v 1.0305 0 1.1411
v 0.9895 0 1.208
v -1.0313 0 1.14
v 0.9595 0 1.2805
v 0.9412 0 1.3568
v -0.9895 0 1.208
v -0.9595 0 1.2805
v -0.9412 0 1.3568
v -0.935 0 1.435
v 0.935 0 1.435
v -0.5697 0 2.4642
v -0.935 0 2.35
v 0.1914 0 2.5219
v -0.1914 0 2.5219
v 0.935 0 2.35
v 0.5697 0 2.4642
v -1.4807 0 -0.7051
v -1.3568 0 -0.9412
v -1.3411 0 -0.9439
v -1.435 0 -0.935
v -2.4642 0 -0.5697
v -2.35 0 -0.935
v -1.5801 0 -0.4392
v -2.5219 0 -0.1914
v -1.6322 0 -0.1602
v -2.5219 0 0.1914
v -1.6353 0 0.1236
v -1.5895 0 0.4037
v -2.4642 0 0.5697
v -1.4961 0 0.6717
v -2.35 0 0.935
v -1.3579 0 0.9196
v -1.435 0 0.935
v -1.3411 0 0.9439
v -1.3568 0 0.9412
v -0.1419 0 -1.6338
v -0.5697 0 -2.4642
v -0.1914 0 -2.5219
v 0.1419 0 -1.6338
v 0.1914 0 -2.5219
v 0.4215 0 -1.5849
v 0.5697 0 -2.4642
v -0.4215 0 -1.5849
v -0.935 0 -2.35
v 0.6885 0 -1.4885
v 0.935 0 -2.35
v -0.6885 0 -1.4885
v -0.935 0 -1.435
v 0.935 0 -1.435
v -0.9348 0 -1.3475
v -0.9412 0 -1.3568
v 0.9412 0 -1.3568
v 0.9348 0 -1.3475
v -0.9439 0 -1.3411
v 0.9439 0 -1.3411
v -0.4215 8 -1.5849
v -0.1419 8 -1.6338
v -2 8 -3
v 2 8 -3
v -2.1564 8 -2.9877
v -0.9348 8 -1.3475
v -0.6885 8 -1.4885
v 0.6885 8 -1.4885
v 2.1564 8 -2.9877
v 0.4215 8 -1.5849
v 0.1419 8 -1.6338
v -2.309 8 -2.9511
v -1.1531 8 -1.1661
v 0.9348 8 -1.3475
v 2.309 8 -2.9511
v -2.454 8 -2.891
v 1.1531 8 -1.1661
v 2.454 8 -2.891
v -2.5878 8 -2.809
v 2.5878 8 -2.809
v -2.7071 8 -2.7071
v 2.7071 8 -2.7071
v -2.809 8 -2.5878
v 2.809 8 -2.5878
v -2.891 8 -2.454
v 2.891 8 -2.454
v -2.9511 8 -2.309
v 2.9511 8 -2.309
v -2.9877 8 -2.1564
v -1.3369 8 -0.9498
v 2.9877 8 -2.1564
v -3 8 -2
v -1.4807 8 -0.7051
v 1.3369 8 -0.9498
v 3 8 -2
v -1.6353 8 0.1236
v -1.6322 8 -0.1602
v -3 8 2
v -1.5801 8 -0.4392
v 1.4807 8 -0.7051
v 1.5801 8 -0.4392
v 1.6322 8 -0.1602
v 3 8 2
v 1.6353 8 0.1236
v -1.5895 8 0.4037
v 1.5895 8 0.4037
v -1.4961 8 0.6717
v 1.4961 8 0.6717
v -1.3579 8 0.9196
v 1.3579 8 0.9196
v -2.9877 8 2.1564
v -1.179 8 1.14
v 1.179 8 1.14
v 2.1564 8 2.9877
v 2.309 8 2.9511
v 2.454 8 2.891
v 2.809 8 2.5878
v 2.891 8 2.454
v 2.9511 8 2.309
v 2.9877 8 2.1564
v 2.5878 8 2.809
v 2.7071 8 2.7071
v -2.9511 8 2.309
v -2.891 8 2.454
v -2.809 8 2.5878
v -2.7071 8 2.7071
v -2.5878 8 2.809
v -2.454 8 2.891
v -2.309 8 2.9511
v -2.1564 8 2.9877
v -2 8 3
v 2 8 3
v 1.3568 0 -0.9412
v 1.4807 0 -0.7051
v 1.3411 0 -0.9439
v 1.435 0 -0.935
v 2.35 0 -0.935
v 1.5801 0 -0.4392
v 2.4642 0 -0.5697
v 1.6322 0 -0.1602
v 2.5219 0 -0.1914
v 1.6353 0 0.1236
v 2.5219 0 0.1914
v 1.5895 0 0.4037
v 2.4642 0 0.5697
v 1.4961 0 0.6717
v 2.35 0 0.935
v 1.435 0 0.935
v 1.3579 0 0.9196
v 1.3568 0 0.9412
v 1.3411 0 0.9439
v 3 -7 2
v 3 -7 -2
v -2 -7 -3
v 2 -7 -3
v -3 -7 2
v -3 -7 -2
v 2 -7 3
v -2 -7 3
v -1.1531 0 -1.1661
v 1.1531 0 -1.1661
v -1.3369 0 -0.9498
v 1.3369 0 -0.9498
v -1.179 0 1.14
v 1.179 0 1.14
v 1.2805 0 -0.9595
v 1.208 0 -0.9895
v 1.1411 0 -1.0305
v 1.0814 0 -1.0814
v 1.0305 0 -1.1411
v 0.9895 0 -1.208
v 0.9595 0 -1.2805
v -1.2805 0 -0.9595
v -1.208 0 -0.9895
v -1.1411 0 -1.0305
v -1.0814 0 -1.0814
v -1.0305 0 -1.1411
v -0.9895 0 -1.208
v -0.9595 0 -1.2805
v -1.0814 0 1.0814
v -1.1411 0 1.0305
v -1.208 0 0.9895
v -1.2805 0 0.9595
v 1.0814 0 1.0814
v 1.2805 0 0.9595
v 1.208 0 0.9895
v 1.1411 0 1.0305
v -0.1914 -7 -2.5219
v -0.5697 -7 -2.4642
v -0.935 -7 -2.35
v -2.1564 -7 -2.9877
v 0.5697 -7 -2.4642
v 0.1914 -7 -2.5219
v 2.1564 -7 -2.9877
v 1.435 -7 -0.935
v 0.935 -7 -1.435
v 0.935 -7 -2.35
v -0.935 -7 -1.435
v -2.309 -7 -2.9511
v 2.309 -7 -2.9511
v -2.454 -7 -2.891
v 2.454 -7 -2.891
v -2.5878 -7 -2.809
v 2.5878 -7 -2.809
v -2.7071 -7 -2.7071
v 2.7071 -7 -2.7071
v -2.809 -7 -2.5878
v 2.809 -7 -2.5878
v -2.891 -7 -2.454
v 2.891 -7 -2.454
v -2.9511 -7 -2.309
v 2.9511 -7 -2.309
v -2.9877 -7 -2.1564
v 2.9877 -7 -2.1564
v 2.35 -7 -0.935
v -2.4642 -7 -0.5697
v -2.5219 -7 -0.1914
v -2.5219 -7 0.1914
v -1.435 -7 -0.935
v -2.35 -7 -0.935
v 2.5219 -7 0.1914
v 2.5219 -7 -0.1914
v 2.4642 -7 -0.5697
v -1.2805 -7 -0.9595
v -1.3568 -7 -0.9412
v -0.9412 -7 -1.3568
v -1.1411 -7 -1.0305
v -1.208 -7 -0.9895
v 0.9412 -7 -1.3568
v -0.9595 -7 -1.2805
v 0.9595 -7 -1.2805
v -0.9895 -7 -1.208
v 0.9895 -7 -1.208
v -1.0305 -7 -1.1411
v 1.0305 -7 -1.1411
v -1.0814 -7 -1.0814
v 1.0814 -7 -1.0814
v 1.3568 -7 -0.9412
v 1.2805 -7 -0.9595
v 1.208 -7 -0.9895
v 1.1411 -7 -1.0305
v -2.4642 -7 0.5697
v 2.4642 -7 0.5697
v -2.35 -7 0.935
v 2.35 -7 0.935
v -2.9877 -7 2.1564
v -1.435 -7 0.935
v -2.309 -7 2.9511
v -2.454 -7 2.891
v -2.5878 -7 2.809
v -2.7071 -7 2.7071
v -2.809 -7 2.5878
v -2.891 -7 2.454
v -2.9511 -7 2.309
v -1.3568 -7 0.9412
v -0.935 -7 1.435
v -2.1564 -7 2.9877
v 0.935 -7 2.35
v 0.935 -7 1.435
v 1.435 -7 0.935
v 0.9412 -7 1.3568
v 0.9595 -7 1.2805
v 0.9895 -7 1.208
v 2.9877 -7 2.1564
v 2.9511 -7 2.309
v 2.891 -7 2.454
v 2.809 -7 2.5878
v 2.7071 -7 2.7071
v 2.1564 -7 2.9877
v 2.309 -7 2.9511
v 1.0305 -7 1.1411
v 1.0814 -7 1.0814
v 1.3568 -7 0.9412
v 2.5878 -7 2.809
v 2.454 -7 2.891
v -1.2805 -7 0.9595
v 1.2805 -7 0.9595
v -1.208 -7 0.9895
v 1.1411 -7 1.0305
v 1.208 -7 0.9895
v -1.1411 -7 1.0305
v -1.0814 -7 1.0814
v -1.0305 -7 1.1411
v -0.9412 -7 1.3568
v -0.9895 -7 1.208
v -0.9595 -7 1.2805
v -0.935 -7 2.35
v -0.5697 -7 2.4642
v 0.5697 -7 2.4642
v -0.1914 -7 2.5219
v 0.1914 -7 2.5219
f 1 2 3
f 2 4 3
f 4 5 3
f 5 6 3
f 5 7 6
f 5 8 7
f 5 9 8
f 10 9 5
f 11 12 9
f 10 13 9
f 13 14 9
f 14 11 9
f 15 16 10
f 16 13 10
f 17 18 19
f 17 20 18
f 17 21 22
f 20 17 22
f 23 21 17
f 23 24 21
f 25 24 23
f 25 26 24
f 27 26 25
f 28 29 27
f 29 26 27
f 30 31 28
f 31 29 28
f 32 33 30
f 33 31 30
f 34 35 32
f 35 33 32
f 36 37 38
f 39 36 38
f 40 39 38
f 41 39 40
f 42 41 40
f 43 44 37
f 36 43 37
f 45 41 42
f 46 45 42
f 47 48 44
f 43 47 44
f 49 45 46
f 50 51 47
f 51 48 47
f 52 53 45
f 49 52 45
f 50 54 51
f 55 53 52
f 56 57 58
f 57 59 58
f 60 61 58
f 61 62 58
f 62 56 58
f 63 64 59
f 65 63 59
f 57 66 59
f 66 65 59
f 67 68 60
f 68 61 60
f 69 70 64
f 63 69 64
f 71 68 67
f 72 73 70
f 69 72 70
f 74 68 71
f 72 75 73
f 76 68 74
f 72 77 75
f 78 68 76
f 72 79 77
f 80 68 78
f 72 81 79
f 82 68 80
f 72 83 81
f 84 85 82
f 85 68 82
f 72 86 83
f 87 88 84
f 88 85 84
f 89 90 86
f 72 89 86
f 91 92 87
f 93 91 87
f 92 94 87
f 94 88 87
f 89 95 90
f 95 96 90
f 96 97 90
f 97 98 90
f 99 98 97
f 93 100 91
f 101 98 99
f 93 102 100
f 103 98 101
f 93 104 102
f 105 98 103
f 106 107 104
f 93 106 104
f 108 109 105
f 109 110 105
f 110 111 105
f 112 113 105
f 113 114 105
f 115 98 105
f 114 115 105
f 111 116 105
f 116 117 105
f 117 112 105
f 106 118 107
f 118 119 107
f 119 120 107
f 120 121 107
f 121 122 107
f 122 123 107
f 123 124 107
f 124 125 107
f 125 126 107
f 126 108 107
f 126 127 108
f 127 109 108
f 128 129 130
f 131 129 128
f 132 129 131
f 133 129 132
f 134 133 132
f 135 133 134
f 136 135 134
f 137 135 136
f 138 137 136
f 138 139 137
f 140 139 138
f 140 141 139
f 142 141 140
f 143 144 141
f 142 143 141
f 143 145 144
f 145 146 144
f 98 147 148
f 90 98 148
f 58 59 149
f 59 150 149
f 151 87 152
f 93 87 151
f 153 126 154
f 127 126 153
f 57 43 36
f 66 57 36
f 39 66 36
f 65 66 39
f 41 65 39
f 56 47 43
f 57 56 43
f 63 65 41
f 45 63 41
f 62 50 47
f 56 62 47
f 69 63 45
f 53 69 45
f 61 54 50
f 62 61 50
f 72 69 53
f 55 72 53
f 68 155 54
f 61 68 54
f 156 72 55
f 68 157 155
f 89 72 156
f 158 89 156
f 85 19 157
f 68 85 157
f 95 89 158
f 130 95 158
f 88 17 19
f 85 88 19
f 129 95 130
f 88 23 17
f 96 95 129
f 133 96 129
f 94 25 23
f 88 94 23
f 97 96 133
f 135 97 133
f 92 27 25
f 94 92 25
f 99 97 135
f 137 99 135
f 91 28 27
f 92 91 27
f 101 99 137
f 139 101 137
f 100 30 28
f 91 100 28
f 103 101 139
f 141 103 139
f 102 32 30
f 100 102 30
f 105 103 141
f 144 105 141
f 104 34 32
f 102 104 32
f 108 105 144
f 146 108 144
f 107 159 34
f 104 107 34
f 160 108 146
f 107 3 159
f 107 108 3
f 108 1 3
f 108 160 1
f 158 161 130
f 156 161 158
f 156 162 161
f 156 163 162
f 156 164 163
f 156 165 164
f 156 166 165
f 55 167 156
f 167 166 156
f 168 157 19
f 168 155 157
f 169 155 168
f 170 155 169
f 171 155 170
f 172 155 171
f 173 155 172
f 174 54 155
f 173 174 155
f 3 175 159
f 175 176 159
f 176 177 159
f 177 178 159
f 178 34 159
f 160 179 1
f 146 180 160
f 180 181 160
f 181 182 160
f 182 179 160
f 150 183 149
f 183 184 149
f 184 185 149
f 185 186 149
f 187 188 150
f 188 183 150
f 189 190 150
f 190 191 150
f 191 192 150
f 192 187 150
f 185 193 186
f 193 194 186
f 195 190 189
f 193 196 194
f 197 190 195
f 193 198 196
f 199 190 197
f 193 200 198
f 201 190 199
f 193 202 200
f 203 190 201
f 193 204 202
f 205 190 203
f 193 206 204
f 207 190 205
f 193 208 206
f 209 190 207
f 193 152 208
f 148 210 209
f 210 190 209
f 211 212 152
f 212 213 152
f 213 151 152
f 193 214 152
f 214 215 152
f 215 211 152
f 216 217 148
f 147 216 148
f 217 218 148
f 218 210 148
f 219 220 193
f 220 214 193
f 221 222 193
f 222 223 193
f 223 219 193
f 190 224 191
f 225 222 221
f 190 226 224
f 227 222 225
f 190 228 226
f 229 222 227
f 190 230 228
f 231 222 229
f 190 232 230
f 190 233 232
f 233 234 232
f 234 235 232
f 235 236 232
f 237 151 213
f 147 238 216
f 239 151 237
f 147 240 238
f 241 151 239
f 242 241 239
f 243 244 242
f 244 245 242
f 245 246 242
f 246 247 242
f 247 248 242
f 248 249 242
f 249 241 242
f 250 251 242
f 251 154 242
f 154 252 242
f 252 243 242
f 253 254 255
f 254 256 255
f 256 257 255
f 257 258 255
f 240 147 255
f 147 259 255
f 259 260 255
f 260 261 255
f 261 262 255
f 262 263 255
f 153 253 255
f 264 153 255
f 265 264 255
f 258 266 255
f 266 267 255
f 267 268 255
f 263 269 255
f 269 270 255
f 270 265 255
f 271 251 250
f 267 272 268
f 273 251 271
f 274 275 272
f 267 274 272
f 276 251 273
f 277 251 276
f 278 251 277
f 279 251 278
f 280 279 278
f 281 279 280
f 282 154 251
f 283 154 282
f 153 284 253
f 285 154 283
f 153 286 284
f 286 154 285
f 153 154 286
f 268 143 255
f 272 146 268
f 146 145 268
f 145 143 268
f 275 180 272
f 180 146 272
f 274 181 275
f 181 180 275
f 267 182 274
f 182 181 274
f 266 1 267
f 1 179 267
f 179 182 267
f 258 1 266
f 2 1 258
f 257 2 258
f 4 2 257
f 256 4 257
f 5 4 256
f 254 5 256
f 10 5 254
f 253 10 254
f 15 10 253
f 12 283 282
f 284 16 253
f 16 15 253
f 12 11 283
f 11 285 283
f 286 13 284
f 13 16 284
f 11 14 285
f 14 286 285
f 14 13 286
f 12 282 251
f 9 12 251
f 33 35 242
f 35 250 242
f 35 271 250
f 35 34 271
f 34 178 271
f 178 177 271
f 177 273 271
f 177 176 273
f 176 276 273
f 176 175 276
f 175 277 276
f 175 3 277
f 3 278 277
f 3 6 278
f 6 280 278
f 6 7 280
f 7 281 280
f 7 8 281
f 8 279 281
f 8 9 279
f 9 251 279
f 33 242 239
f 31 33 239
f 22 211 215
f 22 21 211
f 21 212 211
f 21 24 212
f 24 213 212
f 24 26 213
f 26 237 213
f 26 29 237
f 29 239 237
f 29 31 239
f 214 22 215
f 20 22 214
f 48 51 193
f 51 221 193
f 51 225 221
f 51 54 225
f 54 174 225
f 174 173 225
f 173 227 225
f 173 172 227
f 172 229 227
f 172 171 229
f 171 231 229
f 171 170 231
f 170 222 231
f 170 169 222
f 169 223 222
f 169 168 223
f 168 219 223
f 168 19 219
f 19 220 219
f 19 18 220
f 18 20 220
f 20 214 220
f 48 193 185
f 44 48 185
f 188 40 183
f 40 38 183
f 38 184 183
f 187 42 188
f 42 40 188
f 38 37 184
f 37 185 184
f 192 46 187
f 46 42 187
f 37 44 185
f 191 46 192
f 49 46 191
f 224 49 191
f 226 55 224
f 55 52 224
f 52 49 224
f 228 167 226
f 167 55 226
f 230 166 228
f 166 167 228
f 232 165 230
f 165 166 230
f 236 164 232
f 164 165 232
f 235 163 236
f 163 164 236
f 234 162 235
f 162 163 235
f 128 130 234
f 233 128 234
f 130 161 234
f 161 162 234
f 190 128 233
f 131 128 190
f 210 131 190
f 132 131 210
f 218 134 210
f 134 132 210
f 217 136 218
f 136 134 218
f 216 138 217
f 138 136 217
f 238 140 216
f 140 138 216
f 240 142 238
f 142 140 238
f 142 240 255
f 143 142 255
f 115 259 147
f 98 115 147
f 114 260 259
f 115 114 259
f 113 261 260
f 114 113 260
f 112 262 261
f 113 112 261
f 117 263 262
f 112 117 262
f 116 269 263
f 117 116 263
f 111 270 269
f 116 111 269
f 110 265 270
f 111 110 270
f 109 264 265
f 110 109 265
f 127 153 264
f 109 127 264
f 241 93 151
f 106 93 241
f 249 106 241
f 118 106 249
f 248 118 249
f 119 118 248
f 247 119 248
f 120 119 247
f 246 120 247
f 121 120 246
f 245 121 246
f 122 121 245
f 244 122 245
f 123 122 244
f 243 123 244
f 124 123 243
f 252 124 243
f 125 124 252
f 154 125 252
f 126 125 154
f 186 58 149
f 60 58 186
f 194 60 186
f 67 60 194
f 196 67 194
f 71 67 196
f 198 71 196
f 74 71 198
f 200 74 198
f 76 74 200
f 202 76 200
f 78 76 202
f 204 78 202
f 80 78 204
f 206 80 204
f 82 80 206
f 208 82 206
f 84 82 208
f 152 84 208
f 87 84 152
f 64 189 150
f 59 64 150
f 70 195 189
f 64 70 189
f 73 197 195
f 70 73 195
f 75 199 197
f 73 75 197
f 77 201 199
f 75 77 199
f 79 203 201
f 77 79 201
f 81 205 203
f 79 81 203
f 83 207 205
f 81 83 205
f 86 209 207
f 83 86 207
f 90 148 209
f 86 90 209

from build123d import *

# Parameters (mm, degrees)
SKETCH2_W           = 6
SKETCH2_H           = 6
BOSS_EXTRUDE1_DEPTH = 8
SKETCH7_W           = 6
SKETCH7_H           = 6
BOSS_EXTRUDE2_DEPTH = 7
FILLET1_R           = 1


with BuildPart() as part:
    # Sketch2 → Boss-Extrude1 (new body)
    with BuildSketch(Plane(origin=(0, 0, 0), x_dir=(1, 0, 0), z_dir=(0, 1, 0))):
        Rectangle(SKETCH2_W, SKETCH2_H)
        with BuildLine():
            Line((-1.178982612, -1.14), (1.178982612, -1.14))
            ThreePointArc((1.178982612, -1.14), (0, 1.64), (-1.178982612, -1.14))
        make_face(mode=Mode.SUBTRACT)
    extrude(amount=BOSS_EXTRUDE1_DEPTH)

    # Sketch7 → Boss-Extrude2 (add)
    with BuildSketch(Plane(origin=(0, 0, 0), x_dir=(-1, 0, 0), z_dir=(0, -1, 0))):
        Rectangle(SKETCH7_W, SKETCH7_H)
        with BuildLine():
            Line((-2.35, -0.935), (-1.435, -0.935))
            ThreePointArc((-1.435, -0.935), (-1.081446609, -1.081446609), (-0.935, -1.435))
            Line((-0.935, -1.435), (-0.935, -2.35))
            ThreePointArc((-0.935, -2.35), (0, -2.529174767), (0.935, -2.35))
            Line((0.935, -2.35), (0.935, -1.435))
            ThreePointArc((0.935, -1.435), (1.081446609, -1.081446609), (1.435, -0.935))
            Line((1.435, -0.935), (2.35, -0.935))
            ThreePointArc((2.35, -0.935), (2.529174767, 0), (2.35, 0.935))
            Line((2.35, 0.935), (1.435, 0.935))
            ThreePointArc((1.435, 0.935), (1.081446609, 1.081446609), (0.935, 1.435))
            Line((0.935, 1.435), (0.935, 2.35))
            ThreePointArc((0.935, 2.35), (0, 2.529174767), (-0.935, 2.35))
            Line((-0.935, 2.35), (-0.935, 1.435))
            ThreePointArc((-0.935, 1.435), (-1.081446609, 1.081446609), (-1.435, 0.935))
            Line((-1.435, 0.935), (-2.35, 0.935))
            ThreePointArc((-2.35, 0.935), (-2.529174767, 0), (-2.35, -0.935))
        make_face(mode=Mode.SUBTRACT)
    extrude(amount=BOSS_EXTRUDE2_DEPTH)

    # Fillet1
    fillet1_edges = [part.edges().sort_by_distance(p)[0] for p in [
        (3, 0.5, 3),
        (-3, 0.5, 3),
        (-3, 0.5, -3),
        (3, 0.5, -3),
    ]]
    fillet(fillet1_edges, radius=FILLET1_R)


solid = part.part
